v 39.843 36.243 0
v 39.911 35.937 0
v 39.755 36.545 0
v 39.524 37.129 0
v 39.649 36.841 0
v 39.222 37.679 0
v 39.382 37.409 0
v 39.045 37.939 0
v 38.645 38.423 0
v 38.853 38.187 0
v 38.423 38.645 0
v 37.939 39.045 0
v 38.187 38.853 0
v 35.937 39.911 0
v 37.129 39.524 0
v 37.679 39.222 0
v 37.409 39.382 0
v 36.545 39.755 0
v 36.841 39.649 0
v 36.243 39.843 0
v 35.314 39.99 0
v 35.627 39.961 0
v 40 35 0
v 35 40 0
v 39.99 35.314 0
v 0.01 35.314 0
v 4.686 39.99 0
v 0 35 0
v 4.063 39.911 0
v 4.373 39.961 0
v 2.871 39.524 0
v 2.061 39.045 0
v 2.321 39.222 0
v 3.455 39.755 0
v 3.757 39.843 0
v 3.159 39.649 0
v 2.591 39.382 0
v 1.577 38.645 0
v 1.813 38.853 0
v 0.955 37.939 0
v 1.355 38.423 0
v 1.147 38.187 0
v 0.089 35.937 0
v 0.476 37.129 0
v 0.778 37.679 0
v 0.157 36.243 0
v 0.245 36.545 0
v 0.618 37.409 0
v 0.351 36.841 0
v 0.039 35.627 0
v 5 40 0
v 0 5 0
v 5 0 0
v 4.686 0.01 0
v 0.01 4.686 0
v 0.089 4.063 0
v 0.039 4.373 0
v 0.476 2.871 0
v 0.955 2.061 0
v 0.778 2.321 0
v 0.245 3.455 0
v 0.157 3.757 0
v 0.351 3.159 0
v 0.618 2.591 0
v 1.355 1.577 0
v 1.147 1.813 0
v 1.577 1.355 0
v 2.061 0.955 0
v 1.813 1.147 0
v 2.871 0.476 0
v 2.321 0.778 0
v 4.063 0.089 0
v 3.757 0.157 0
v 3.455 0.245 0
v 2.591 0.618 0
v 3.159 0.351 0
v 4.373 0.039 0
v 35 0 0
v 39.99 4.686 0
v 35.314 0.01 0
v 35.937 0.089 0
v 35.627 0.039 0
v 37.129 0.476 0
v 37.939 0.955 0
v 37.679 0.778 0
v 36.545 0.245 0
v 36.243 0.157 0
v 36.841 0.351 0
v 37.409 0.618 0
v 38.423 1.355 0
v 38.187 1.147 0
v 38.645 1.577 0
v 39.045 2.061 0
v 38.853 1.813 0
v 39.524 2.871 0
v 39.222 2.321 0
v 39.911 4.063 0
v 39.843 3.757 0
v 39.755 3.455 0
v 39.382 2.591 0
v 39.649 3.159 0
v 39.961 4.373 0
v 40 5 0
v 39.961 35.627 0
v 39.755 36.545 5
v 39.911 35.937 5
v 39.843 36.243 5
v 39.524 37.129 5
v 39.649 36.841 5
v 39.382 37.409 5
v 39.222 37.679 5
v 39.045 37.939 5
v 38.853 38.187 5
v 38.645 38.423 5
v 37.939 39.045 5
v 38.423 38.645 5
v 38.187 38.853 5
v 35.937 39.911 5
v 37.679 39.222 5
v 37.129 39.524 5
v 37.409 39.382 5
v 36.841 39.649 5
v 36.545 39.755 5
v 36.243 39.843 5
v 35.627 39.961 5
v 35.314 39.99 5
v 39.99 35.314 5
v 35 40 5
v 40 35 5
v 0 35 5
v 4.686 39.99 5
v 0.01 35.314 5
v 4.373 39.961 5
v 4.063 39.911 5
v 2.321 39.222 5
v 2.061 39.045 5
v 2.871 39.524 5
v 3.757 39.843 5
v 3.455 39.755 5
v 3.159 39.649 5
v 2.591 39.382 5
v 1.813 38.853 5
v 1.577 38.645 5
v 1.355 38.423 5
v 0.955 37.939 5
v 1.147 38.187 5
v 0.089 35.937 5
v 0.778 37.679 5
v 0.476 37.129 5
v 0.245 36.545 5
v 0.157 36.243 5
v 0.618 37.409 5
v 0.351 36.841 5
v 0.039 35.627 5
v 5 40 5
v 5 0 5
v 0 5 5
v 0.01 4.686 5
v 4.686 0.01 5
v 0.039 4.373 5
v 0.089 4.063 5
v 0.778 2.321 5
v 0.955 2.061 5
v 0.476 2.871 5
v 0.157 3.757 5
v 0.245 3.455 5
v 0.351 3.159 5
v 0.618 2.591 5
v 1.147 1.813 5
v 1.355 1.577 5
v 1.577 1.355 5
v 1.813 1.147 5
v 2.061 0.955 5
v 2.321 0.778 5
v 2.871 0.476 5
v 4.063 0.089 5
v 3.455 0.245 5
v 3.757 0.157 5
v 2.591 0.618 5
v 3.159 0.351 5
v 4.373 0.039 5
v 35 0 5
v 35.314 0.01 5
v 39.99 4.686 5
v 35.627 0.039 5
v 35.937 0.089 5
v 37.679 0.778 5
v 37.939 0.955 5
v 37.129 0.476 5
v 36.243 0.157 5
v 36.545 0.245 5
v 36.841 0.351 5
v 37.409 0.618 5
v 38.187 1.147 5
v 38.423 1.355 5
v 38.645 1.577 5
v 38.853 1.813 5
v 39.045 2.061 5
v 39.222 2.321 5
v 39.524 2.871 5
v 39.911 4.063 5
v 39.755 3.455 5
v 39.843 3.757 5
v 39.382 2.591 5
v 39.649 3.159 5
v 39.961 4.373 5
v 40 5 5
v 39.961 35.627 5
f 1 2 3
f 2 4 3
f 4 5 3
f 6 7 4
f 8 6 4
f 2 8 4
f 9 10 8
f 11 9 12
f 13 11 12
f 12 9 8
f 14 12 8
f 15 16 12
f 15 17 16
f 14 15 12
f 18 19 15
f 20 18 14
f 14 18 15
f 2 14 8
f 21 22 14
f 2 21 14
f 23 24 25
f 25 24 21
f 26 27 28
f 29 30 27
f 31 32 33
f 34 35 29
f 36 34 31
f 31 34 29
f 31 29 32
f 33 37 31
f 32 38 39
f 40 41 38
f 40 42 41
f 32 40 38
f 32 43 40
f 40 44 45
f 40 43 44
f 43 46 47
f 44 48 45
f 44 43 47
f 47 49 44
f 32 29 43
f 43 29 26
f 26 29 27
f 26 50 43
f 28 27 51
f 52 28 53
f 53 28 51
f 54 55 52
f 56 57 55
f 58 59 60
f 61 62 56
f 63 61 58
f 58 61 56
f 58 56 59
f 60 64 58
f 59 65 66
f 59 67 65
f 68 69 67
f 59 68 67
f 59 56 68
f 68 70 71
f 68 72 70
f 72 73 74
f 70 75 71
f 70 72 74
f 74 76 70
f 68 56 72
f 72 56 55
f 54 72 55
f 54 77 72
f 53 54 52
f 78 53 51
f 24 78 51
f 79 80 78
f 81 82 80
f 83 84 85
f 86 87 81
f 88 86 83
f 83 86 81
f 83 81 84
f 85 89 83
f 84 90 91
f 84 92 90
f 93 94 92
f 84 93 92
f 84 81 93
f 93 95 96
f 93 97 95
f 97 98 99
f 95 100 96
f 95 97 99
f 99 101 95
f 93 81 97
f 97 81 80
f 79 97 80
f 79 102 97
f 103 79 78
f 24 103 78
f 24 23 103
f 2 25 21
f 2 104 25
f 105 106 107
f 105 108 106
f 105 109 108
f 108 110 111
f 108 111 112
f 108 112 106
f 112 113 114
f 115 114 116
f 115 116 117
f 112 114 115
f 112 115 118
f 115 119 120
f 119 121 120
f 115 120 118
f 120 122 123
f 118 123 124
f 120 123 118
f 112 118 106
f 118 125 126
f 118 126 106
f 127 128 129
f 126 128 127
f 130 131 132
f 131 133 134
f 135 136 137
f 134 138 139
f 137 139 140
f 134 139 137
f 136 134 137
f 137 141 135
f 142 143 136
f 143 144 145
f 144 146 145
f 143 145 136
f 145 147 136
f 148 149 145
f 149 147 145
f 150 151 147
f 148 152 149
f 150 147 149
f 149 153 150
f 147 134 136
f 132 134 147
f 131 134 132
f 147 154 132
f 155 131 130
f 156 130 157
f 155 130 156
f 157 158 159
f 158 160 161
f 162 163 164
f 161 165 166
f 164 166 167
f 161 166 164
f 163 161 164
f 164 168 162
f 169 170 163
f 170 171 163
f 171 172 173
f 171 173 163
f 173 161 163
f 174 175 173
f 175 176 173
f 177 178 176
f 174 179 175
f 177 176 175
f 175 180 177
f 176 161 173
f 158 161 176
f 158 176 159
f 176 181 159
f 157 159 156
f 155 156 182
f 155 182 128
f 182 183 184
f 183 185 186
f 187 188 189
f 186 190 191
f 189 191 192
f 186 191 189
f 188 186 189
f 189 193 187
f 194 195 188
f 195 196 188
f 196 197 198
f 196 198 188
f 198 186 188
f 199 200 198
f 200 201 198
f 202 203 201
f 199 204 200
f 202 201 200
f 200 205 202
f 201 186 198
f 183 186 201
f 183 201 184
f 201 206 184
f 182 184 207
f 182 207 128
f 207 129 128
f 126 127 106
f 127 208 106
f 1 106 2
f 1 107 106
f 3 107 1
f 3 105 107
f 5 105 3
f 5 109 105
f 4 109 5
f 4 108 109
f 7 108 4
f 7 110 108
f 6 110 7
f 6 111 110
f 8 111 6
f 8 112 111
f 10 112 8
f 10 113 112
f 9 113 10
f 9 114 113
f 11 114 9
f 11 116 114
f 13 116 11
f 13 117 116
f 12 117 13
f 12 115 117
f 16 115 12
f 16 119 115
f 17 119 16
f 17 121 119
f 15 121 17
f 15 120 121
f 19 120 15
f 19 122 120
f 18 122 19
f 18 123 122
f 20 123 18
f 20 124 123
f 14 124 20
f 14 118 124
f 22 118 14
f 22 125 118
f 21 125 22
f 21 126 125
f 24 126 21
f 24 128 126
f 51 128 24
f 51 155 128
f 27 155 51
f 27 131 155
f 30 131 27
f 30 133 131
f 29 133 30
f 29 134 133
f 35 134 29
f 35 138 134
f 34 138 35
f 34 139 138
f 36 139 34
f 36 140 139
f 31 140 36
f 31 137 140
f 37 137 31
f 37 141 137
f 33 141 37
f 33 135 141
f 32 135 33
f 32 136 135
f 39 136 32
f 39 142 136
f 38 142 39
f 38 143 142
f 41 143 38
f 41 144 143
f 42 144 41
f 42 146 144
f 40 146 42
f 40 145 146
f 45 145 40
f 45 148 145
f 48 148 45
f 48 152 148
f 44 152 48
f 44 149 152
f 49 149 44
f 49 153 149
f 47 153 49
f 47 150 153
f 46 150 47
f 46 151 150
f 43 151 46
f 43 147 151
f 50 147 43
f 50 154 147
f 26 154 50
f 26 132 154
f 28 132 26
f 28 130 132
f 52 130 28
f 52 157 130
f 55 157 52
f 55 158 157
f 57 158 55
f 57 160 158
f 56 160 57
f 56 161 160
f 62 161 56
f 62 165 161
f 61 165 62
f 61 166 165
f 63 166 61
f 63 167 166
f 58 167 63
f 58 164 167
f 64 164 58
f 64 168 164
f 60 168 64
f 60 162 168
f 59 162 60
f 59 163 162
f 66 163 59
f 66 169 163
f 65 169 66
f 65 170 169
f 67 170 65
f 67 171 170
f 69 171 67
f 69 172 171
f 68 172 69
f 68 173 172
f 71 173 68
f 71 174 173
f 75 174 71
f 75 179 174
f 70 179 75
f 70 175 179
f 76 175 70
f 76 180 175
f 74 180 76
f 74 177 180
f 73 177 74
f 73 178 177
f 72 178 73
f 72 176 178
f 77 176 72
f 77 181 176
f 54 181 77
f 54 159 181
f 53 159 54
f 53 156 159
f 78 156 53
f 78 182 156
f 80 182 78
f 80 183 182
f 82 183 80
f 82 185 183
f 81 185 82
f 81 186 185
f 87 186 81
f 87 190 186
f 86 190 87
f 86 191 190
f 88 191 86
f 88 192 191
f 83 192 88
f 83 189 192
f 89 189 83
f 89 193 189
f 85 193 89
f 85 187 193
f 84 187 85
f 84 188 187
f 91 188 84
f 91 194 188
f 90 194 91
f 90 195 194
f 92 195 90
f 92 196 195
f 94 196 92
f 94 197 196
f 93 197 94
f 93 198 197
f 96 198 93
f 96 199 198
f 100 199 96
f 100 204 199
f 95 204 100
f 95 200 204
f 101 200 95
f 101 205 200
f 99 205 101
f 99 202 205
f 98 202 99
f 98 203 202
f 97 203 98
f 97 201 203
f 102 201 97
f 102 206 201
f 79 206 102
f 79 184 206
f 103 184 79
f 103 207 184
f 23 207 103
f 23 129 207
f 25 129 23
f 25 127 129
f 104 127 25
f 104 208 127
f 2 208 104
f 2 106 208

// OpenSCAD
// file: ../common/math.scad
//
// just some useful general math utilities
//

//
// min() and max() give you the lower or higher of their arguments,
// respectively.  They behave asymmetrically at 0, so as to establish a
// stable sort order, merely reversed, no matter which order the inputs come
// in.
//
// contributed by @vathpela
//
function min(x, y) = y > x ? x : y;
function max(x, y) = x >= y ? x : y;

//
// logx(x, b) is log base x of b aka logX(b)
//
// *sigh*, openscad's math primitives are so defective
//
// contributed by @vathpela
//
function logx(x, b) = log(x) / log(b);
// file: ../common/shapes.scad
/*
  author: Christopher O'Brien  <obriencj@gmail.com>
  license: GPL v3
*/


function shared_tangents(p1, p2) =
    let(r1 = p1[2],
        r2 = p2[2],
        dx = p2.x - p1.x,
        dy = p2.y - p1.y,
        d = sqrt(dx * dx + dy * dy),
        theta = atan2(dy, dx) + acos((r1 - r2) / d),
        xa = p1.x +(cos(theta) * r1),
        ya = p1.y +(sin(theta) * r1),
        xb = p2.x +(cos(theta) * r2),
        yb = p2.y +(sin(theta) * r2))
     [ [xa, ya], [xb, yb] ];



module _rounded_polygon(points, $fn=100) {
/*
  each point is [x, y, r] of a circle

  adapted from
  http://forum.openscad.org/Script-to-replicate-hull-and-minkoswki-for-CSG-export-import-into-FreeCAD-td16537.html#a16556
*/

     p_len = len(points);

     function p_tang(index) =
	  shared_tangents(points[index], points[(index + 1) % p_len]);

     // all the positive radius circles
     for(p = points) {
	  if(p[2] > 0) {
	       translate([p.x, p.y]) {
		    circle(p[2]);
	       };
	  };
     };

     difference() {
	  // a polygon connecting the tangent points between all
	  // circles in order
	  polygon([for(i = [0: p_len - 1]) for(e = p_tang(i)) e]);

	  // then subtract all the negative radius circles
	  for(p = points) {
	       if(p[2] < 0) {
		    translate([p.x, p.y]) {
			 circle(-p[2]);
		    };
	       };
	  };
     };
}


module rounded_polygon(points, thick=0, $fn=100) {
     /*
       each point in points is a vector of [x, y, r] where r is
       positive to indicate that it is an interior point, and negative
       to indicate it is an exterior point.
     */

     if(thick) {
	  linear_extrude(thick) {
	       _rounded_polygon(points, $fn);
	  };
     } else {
	  _rounded_polygon(points, $fn);
     };
}


function _r_adj(r, adj) =
     let(ra = r + adj) (r > 0)? max(0, ra): ra;


function adj_rounded_poly(points, adj) =
     [for(p=points) [p.x, p.y, _r_adj(p[2], adj)]];


module rounded_inset_poly(points, inset, thick, lip=undef) {
     tl = lip? (thick - lip): (thick / 2);

     rounded_polygon(points, tl);
     translate([0, 0, tl]) {
	  rounded_polygon(adj_rounded_poly(points, -inset),
			  thick - tl);
     };
}


module rounded_outset_poly(points, inset, thick, lip=undef) {
     tl = lip? (thick - lip): (thick / 2);

     rounded_polygon(points, tl);
     rounded_hollow_poly(points, inset, thick);
}


module rounded_hollow_poly(points, inset, thick) {
     linear_extrude(thick) {
	  difference() {
	       rounded_polygon(points);
	       rounded_polygon(adj_rounded_poly(points, -inset));
	  };
     };
}


/**
   A cylinder with a bore through it

   * barrel_r is the exterior radius
   * barrel_h is the overall height
   * bore_r is the interior radius
*/
module barrel(barrel_r, barrel_h, bore_r, $fn=100) {
     linear_extrude(barrel_h) {
	  difference() {
	       circle(barrel_r);
	       circle(bore_r);
	  };
     };
}


/**
   A ring with a circular profile.

   * ring_ir is the interior radius
   * cross_r is the radius of the cross-section
*/
module o_ring(ring_ir, cross_r, $fn=100) {
     rotate_extrude(angle=360) {
	  translate([ring_ir + cross_r, 0, 0]) {
	       circle(cross_r);
	  };
     };
}


/**
   A ring with a D shaped profile.

   * ring_ir is the interior radius
   * cross_r is the radius of the cross-section, before being affected
   by the factor.
   * The factor describes how much of a circle is being presented in
   the cross-section. A factor of 1 is equivalent of an oring.
*/
module d_ring(ring_ir, cross_r, factor=0.25, $fn=100) {

     factor_shift = (cross_r * 2 * factor) - cross_r;

     rotate_extrude(angle=360) {
	  difference() {
	       translate([ring_ir + factor_shift , 0, 0]) {
		    circle(cross_r);
	       };
	       square([ring_ir * 2, ring_ir * 2], true);
	  };
     };
}



module rounded_plate(width, depth, height, turn_r=5.1, $fn=50) {
     turn_d = turn_r * 2;

     translate([turn_r, turn_r, 0]) {
	  linear_extrude(height) {
	       minkowski() {
		    square([width - turn_d, depth - turn_d]);
		    circle(turn_r);
	       };
	  };
     };
}


module rounded_box(width, depth, height, turn_r=5, $fn=50) {
     turn_d = turn_r * 2;

     translate([turn_r, turn_r, turn_r]) {
	  minkowski() {
	       cube([width - turn_d, depth - turn_d, height - turn_d]);
	       sphere(turn_r);
	  };
     };
}


// The end.
// file: ../common/copies.scad
/*
  author: Christopher O'Brien  <obriencj@gmail.com>
  license: GPL v3
*/
use <../common/math.scad>

module copy_mirror(plane=[0, 0, 1]) {
     children();
     mirror(plane) children();
}


module copy_translate(x=0, y=0, z=0, copies=1) {
     if(copies) {
	  for(i = [0:copies]) {
	       translate([x * i, y * i, z * i]) {
		    children();
	       };
	  };
     } else {
	  children();
     };
}


module copy_rotate(x=0, y=0, z=0, copies=1) {
     if(copies) {
	  for(i = [0:copies]) {
	       rotate([x * i, y * i, z * i]) {
		    children();
	       };
	  };
     } else {
	  children();
     };
}


module copy_grid(offsets=[0, 0, 0], grid=[1, 1, 1]) {
     copy_translate(x=offsets.x, copies=grid.x-1) {
	  copy_translate(y=offsets.y, copies=grid.y-1) {
	       copy_translate(z=offsets.z, copies=grid.z-1) {
		    children();
	       };
	  };
     };
}


module duplicate(move_v=[0,0,0], rotate_v=[0,0,0]) {
     children();
     translate(move_v) {
	  rotate(rotate_v) {
	       children();
	  };
     };
}


//
// isomers() builds stereoisometric copies, horrifyingly laid out on the xy
// plane.
//
// you can specify how many copies with n=<NUMBER> or ns[xN, yN, zN],
// n=1 is the same as ns=[1, 0, 0]
// If the single n is nonzero, it is used, else the vector is.
//
// This is astonishingly close to actual n-dimensional chess.  You probably
// only want to choose n>1 on 2 or fewer planes at the same time. Inputs:
//
// contributed by @vathpela
//
module isomers(n=0, ns=[1, 0, 0], size=[1, 1, 1], debug=false)
{
    nm = [n ? n : ns[0], n ? 1 : ns[1], n ? 1 : ns[2]];

    xn = max(nm[0], 1);
    yn = max(nm[1], 1);
    zn = max(nm[2], 1);
    if (debug)
        echo("[xn,yn,zn]", [xn,yn,zn]);
    m = logn(xn*yn*zn, 2);

    xs = size[0];
    ys = size[1];
    zs = size[2];
    if (debug)
        echo("[xs,ys,zs]", [xs,ys,zs]);

    module zmirrorshift(origin=[0, 0, 0], x, y)
    {
        if (debug)
            echo("zmirror origin", origin);
        for (z = [0:1:zn-1])
        {
            shift0 = [origin[0] + xs/2 * 1.2 * (z-0.5)*-zn,
                      origin[1],
                      origin[2] + zs];
            shift1 = [origin[0] + xs/2 * 1.2 * (z-3.5)*zn - (xn) * xs * 1.2,
                      origin[1],
                      origin[2]];
            shift2 = [origin[0] + xs/2 * 1.2 * (z-0.5)*-zn,
                      origin[1],
                      origin[2]];

            if (z % 2 == 0 && zn != 1) {
                if (debug)
                    echo("za [z]", [z], "[zs]", [zs], "t([x,y,z])", shift0);
                translate(shift0) mirror([0, 0, 1]) children();
            } else {
                if (debug)
                    echo("zb [z]", [z], "[zs]", [zs], "t([x,y,z])", shift1);
                translate(zn == 1 ? shift2 : shift1) children();
            }
        }
    }

    module ymirrorshift(origin=[0, 0, 0], x)
    {
        if (debug)
            echo("ymirror origin", origin);
        for (y = [0:1:yn-1])
        {
            shift=[origin[0],
                   origin[1] + y * ys * 1.2,
                   origin[2]];
            if (debug)
                echo("ya [x,y,z]", [x,y,0], "[ys,zs]", [ys,zs], "t([x,y,z])", shift);
            if (y % 2 == 0) {
                zmirrorshift(shift, x, y) mirror([0, 1, 0]) children();
            } else {
                zmirrorshift(shift, x, y) children();
            }
        }
    }

    module xmirrorshift(origin=[0, 0, 0])
    {
        if (debug)
            echo("xmirror origin", origin);
        for (x = [0:1:xn-1])
        {
            shift=[origin[0] + x * xs * 1.2,
                   origin[1],
                   origin[2]];
            if (debug)
                echo("xa [x,y,z]", [x,0,0],
                     "[xs,ys,zs]", [xs,ys,zs],
                     "t([x,y,z])", shift);
            if (x % 2 == 0) {
                ymirrorshift(shift, x) mirror([1, 0, 0]) children();
            } else {
                ymirrorshift(shift, x) children();
            }
        }
    }

    xmirrorshift() children();
}

// The end.
// file: tileframe.scad
use <../common/copies.scad>;
use <../common/shapes.scad>;


module rectangle_rounded_tile(x, y, thick, r) {
     overthick = thick + (2 * r);
     intersection() {
          translate([0, 0, -(overthick - thick)]) {
               rounded_box(x, y, overthick, r, $fn=100);
          };
          cube([x, y, thick]);
     }
}


module square_rounded_tile(xy, thick, r) {
     rectangle_rounded_tile(xy, xy, thick, r);
}


module single_square_rounded(xy, thick, r, frame_thick=5) {
     outer_xy = xy + (2 * frame_thick);
     inner_xy = xy - (2 * r);

     difference() {
          cube([outer_xy, outer_xy, (thick + frame_thick)]);

	  translate([frame_thick + r, frame_thick + r, 0.01]) {
	       rounded_plate(inner_xy, inner_xy,
			     thick + frame_thick, r,
			     $fn=100);
	  };

          translate([frame_thick, frame_thick, -0.01]) {
               square_rounded_tile(xy, thick, r);
          };
     }
}


module quad_square_rounded(xy, thick, r, frame_thick=5) {
     copy_grid(offsets=[xy + frame_thick, xy + frame_thick, 0],
               grid=[2, 2, 1]) {
          single_square_rounded(xy, thick, r, frame_thick);
     };
}


module single_square_rounded_frame_plate(xy, thick, r, frame_thick=5) {
     inner_xy = xy - (2 * r);
     rounded_plate(inner_xy, inner_xy,
		   frame_thick, r,
		   $fn=100);
}


module embossed(image, xy, thick, r, frame_thick=5) {
     difference() {
	  single_square_rounded_frame_plate(50, 8, 5);
	  translate([20, 20, 6]) {
	       mirror([1, 0, 0]) {
		    mirror([0, 0, 1]) {
			 resize([40.01, 40.01, 2])
			      surface(file=image, center=true, $fn=100);
			 };
		    };
	       };
     };
}


// square_rounded_tile(50, 5, 5);

mirror([0, 0, 1]) quad_square_rounded(50, 5, 5);

// translate([-80, 0, 0]) single_square_rounded_frame_plate(50, 5, 5);
// embossed("smoosh.png", 50, 5, 5);


// The end.
// main file
use <tileframe.scad>;

single_square_rounded_frame_plate(50, 5, 5);

// The end.
